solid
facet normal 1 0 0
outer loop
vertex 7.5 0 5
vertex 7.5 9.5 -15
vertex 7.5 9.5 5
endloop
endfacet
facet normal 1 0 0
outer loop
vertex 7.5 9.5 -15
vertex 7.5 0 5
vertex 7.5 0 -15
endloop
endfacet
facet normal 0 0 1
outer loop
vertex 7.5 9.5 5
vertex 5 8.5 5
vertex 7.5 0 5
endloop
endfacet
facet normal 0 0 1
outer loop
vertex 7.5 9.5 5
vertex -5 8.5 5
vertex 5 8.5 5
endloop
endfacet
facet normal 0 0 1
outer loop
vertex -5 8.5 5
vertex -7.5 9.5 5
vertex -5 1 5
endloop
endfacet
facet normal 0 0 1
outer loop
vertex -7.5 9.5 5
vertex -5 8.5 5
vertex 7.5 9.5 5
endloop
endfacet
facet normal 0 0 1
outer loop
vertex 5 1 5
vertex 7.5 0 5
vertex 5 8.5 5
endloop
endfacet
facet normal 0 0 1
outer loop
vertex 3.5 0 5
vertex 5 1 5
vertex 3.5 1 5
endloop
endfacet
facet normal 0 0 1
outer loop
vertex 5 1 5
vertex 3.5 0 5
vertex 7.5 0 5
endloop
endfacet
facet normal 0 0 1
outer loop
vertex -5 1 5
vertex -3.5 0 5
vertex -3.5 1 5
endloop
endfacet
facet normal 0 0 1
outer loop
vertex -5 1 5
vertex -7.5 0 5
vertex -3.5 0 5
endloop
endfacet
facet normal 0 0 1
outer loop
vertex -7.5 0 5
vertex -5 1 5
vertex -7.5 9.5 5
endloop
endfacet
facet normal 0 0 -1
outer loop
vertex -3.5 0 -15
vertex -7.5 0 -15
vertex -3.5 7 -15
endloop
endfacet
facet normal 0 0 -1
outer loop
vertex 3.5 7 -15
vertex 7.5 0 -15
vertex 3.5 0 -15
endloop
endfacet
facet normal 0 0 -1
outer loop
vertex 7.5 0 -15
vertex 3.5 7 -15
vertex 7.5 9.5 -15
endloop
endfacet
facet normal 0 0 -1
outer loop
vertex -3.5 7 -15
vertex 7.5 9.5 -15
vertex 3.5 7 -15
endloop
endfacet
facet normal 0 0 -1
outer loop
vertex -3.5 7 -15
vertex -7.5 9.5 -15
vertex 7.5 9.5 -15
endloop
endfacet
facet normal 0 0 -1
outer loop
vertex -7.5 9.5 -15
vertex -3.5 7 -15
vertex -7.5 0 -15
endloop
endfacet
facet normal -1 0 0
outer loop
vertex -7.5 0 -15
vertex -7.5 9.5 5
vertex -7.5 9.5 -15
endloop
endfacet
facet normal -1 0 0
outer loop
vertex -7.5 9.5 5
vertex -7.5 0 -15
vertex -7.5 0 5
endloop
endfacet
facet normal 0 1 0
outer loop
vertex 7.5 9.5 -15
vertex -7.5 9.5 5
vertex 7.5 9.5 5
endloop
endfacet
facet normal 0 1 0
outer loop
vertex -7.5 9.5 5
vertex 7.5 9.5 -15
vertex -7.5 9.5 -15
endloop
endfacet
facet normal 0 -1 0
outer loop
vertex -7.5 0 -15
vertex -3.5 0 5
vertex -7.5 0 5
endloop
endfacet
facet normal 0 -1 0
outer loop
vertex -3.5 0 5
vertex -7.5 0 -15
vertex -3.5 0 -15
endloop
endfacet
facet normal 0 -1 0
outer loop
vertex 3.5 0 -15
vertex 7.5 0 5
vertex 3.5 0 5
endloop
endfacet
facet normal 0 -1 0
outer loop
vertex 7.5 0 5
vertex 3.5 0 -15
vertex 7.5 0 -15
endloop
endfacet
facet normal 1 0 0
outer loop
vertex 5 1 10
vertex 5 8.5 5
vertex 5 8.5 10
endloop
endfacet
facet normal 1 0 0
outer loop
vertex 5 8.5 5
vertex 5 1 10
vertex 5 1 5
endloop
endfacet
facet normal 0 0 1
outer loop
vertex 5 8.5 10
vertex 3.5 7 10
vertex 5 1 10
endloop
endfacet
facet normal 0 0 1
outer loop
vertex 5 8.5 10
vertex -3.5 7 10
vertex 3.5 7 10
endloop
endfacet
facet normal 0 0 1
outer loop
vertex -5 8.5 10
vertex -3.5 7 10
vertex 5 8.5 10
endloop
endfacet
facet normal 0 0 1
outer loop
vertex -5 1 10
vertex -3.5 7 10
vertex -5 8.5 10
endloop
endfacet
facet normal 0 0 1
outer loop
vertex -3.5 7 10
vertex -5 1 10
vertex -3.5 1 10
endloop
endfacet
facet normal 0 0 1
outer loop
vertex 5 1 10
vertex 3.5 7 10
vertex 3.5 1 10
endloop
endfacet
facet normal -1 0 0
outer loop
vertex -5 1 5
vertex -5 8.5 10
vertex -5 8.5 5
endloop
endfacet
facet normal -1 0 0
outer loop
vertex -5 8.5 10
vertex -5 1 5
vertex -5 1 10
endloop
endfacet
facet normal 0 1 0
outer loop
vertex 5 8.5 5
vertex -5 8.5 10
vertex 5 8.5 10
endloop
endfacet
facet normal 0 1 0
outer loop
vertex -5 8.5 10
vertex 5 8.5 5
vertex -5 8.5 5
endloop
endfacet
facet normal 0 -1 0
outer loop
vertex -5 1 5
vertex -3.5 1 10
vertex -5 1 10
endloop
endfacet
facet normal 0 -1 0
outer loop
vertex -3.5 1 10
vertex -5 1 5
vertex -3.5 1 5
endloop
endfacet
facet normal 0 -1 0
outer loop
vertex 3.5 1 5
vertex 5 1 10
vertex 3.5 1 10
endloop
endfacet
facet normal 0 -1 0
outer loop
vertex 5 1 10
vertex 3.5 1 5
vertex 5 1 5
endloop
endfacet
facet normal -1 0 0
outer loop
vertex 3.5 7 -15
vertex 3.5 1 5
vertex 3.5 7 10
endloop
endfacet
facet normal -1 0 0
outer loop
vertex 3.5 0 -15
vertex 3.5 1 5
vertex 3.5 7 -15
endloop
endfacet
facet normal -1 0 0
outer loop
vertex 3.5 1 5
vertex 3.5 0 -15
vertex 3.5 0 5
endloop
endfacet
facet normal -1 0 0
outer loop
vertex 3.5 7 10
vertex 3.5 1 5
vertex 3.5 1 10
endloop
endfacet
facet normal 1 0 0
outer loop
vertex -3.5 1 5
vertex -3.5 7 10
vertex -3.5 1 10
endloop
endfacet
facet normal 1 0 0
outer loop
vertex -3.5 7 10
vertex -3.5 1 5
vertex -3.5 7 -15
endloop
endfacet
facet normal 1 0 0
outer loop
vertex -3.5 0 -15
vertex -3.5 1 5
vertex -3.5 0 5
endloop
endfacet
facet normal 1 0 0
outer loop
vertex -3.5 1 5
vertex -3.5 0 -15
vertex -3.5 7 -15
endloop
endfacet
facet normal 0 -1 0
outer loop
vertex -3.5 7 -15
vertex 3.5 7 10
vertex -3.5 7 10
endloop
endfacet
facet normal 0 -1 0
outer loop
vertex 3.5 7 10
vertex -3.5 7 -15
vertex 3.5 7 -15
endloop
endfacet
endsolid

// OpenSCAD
// middle();
bottom();

module middle() {
    difference() {
        translate([0,9.5/2,0]) union(){
            cube([15,9.5,5],center=true);
            translate([0,0,0]) cube([10,7.5,20],center=true);
        }
        translate([0,3,0]) cube([7,8,25],center=true);
    }
}

module bottom() {
    difference() {
        translate([0,9.5/2,0]) union(){
            translate([0,0,-5]) cube([15,9.5,5+15],center=true);
            translate([0,0,0]) cube([10,7.5,20],center=true);
        }
        translate([0,3,0]) cube([7,8,55],center=true);
    }
}

module stopper() {
    difference() {
        translate([0,9.5/2,0]) union(){
            cube([15,9.5,5],center=true);
            translate([0,0,5]) cube([10,7.5,8],center=true);
        }
        translate([0,3,5]) cube([7,8,12],center=true);
        translate([-1,0,0]) hull(){
            cylinder(h=10, r=2.2, center=true, $fn=10);
            translate([0,5,0]) cylinder(h=10, r=2.2, center=true, $fn=10);
        }
    }
}
